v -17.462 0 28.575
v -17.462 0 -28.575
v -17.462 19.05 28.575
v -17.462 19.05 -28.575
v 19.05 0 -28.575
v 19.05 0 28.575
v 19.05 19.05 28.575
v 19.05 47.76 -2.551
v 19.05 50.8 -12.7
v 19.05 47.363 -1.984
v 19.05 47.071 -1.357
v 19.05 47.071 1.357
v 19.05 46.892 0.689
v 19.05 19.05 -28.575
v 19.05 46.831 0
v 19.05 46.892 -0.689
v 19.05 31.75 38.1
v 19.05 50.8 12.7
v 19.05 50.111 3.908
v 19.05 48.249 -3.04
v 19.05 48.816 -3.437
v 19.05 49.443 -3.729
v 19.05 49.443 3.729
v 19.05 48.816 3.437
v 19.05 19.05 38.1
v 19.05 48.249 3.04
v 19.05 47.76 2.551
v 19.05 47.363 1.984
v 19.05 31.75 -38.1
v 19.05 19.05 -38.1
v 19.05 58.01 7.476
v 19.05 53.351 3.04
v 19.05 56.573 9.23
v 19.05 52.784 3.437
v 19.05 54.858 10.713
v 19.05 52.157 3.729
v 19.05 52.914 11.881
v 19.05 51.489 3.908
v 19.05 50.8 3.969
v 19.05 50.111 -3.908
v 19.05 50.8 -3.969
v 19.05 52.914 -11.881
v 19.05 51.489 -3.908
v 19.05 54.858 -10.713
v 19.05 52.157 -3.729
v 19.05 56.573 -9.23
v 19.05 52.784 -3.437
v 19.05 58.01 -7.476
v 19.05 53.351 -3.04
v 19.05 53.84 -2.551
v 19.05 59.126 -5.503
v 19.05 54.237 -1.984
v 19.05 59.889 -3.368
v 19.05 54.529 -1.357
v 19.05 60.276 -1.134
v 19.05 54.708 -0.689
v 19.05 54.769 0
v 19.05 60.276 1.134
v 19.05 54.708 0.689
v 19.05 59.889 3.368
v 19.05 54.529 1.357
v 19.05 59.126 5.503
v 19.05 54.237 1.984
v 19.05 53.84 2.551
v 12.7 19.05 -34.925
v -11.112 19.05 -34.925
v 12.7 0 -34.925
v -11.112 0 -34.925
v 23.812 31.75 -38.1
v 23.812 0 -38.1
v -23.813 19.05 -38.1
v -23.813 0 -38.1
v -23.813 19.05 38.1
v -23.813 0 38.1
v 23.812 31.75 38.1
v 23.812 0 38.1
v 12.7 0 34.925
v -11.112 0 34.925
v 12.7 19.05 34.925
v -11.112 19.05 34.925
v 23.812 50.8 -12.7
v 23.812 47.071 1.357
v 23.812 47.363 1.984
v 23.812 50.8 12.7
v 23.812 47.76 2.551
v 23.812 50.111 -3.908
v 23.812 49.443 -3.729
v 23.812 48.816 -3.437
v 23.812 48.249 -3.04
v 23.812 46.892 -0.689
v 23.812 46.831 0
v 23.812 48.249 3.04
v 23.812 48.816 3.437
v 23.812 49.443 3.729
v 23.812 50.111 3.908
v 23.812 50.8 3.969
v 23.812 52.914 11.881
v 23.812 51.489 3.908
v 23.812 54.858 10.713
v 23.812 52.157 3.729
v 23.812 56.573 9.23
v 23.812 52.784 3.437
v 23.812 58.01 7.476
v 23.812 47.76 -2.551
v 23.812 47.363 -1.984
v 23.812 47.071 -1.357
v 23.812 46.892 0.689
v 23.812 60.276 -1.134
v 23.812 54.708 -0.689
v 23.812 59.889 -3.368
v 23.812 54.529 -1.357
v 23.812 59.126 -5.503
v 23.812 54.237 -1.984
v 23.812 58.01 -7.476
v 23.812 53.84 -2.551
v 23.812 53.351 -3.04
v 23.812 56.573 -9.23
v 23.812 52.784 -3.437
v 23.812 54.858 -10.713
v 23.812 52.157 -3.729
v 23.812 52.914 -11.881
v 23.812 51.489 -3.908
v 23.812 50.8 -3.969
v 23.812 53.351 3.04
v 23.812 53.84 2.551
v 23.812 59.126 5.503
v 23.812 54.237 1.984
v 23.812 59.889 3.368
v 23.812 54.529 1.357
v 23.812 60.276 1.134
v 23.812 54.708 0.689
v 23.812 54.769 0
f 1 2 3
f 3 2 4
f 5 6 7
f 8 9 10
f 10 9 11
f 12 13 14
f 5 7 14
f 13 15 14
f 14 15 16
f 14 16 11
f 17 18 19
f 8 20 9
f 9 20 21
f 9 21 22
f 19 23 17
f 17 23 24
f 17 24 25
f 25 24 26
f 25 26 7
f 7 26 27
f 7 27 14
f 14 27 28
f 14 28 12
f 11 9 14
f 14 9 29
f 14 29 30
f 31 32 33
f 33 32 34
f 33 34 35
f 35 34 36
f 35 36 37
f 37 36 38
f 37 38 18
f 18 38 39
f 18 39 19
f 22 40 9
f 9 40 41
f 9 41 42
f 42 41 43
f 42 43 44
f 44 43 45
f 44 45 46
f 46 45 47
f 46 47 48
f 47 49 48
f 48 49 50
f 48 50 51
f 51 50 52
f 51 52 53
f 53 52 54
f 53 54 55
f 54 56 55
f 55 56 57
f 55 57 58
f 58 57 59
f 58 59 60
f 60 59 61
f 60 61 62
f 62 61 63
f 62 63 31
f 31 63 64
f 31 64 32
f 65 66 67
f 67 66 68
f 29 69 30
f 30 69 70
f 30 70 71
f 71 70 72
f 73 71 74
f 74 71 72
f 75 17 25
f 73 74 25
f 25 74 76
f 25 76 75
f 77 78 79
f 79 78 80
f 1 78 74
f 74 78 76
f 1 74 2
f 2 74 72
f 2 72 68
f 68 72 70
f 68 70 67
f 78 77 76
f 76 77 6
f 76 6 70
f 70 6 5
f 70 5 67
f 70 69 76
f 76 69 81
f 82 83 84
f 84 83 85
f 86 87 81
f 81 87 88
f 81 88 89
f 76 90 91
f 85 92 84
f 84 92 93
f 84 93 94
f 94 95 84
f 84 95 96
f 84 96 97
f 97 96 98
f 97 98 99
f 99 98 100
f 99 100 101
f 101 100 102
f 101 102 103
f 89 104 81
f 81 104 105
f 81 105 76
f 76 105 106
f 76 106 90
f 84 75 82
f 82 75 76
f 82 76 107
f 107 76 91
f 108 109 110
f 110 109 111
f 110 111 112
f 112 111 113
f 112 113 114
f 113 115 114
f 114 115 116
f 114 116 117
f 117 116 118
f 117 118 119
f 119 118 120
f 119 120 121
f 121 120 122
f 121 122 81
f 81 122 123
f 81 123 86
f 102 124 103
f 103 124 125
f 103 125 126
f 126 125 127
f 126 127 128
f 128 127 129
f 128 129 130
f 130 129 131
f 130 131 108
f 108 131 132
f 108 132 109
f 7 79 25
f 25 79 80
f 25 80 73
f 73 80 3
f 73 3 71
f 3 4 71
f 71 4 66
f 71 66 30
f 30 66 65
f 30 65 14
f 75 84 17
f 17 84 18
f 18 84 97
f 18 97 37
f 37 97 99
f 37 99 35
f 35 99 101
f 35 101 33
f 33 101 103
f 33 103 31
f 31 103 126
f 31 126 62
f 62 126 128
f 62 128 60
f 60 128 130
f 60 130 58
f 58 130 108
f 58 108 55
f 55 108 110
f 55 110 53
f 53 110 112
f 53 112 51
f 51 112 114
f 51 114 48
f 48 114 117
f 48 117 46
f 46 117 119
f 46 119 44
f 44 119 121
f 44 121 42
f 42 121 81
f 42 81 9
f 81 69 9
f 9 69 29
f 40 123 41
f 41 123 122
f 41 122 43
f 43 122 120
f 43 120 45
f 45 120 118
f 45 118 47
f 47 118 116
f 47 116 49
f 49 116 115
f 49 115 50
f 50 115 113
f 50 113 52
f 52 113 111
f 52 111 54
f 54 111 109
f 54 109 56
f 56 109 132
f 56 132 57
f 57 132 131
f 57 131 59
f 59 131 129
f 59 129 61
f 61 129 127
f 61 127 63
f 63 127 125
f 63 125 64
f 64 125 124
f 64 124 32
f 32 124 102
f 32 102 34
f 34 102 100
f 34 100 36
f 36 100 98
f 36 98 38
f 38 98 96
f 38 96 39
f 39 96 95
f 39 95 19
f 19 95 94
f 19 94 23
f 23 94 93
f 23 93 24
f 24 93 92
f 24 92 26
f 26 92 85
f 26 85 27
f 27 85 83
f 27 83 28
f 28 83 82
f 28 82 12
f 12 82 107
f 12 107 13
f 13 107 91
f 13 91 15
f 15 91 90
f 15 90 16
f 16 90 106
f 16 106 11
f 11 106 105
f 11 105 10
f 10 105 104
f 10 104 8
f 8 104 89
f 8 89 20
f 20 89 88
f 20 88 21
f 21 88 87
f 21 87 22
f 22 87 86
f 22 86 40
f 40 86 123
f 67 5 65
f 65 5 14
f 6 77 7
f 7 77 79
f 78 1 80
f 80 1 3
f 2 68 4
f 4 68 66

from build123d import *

# Parameters (mm, degrees)
BOSS_EXTRUDE1_DEPTH = 6.35
BOSS_EXTRUDE2_DEPTH = 60.325
SKETCH2_W           = 6.35
SKETCH2_H           = 76.2
BOSS_EXTRUDE3_DEPTH = 12.7
CUT_EXTRUDE2_REACH  = 87.784
CUT_EXTRUDE3_REACH  = 87.784
SKETCH4_3_R         = 3.96875
SKETCH7_W           = 36.5125
SKETCH7_H           = 3.175
BOSS_EXTRUDE5_DEPTH = 12.7
CHAMFER6_SIZE       = 6.35


with BuildPart() as part:
    # Sketch1 → Boss-Extrude1 (new body)
    with BuildSketch(Plane(origin=(0, 0, 0), x_dir=(1, 0, 0), z_dir=(0, 1, 0))):
        Polygon((19.05, 34.925), (19.05, 38.1), (-23.8125, 38.1), (-23.8125, -38.1), (19.05, -38.1), (19.05, -34.925), (-17.4625, -34.925), (-17.4625, 34.925), align=None)
    extrude(amount=BOSS_EXTRUDE1_DEPTH)

    # Sketch1<4> → Boss-Extrude2 (add)
    with BuildSketch(Plane(origin=(0, 0, 0), x_dir=(1, 0, 0), z_dir=(0, 1, 0))):
        Polygon((23.8125, 38.1), (19.05, 38.1), (19.05, 34.925), (19.05, -34.925), (19.05, -38.1), (23.8125, -38.1), align=None)
    extrude(amount=BOSS_EXTRUDE2_DEPTH)

    # Sketch2 → Boss-Extrude3 (add)
    with BuildSketch(Plane(origin=(0, 6.35, 0), x_dir=(1, 0, 0), z_dir=(0, 1, 0))):
        with Locations((-20.6375, 0)):
            Rectangle(SKETCH2_W, SKETCH2_H)
    extrude(amount=BOSS_EXTRUDE3_DEPTH)

    # Sketch4 → Cut-Extrude2 (cut, up to next)
    with BuildSketch(Plane(origin=(23.8125, 0, 0), x_dir=(0, 0, -1), z_dir=(1, 0, 0)), mode=Mode.PRIVATE) as cut_extrude2_sk1:
        with BuildLine():
            Line((-38.1, 60.325), (-38.1, 31.75))
            Line((-38.1, 31.75), (-12.7, 50.8))
            ThreePointArc((-12.7, 50.8), (-7.9375, 57.679166667), (0, 60.325))
            Line((0, 60.325), (-38.1, 60.325))
        make_face()
    cut_extrude2_tool1 = extrude(cut_extrude2_sk1.sketch, amount=-CUT_EXTRUDE2_REACH, mode=Mode.PRIVATE) & part.part
    # Sketch4 → Cut-Extrude2 (cut, up to next)
    with BuildSketch(Plane(origin=(23.8125, 0, 0), x_dir=(0, 0, -1), z_dir=(1, 0, 0)), mode=Mode.PRIVATE) as cut_extrude2_sk2:
        with BuildLine():
            Line((38.1, 60.325), (0, 60.325))
            ThreePointArc((0, 60.325), (7.9375, 57.679166667), (12.7, 50.8))
            Line((12.7, 50.8), (38.1, 31.75))
            Line((38.1, 31.75), (38.1, 60.325))
        make_face()
    cut_extrude2_tool2 = extrude(cut_extrude2_sk2.sketch, amount=-CUT_EXTRUDE2_REACH, mode=Mode.PRIVATE) & part.part
    add(cut_extrude2_tool1.solids().sort_by_distance((23.8125, 50.488362, 26.421388))[0], mode=Mode.SUBTRACT)
    add(cut_extrude2_tool2.solids().sort_by_distance((23.8125, 50.488362, -26.421388))[0], mode=Mode.SUBTRACT)

    # Sketch4<3> → Cut-Extrude3 (cut, up to next)
    with BuildSketch(Plane(origin=(23.8125, 0, 0), x_dir=(0, 0, -1), z_dir=(1, 0, 0)), mode=Mode.PRIVATE) as cut_extrude3_sk1:
        with Locations((0, 50.8)):
            Circle(SKETCH4_3_R)
    cut_extrude3_tool1 = extrude(cut_extrude3_sk1.sketch, amount=-CUT_EXTRUDE3_REACH, mode=Mode.PRIVATE) & part.part
    add(cut_extrude3_tool1.solids().sort_by_distance((23.8125, 50.8, 0))[0], mode=Mode.SUBTRACT)

    # Sketch7 → Boss-Extrude5 (add)
    with BuildSketch(Plane(origin=(0, 6.35, 0), x_dir=(1, 0, 0), z_dir=(0, 1, 0))):
        with Locations((0.79375, 36.5125)):
            Rectangle(SKETCH7_W, SKETCH7_H)
        with Locations((0.79375, -36.5125)):
            Rectangle(SKETCH7_W, SKETCH7_H)
    extrude(amount=BOSS_EXTRUDE5_DEPTH)

    # Chamfer6
    chamfer6_edges = [part.edges().sort_by_distance(p)[0] for p in [
        (-17.4625, 9.525, 34.925),
        (19.05, 9.525, 34.925),
        (19.05, 9.525, -34.925),
        (-17.4625, 9.525, -34.925),
    ]]
    chamfer(chamfer6_edges, length=CHAMFER6_SIZE)


solid = part.part
